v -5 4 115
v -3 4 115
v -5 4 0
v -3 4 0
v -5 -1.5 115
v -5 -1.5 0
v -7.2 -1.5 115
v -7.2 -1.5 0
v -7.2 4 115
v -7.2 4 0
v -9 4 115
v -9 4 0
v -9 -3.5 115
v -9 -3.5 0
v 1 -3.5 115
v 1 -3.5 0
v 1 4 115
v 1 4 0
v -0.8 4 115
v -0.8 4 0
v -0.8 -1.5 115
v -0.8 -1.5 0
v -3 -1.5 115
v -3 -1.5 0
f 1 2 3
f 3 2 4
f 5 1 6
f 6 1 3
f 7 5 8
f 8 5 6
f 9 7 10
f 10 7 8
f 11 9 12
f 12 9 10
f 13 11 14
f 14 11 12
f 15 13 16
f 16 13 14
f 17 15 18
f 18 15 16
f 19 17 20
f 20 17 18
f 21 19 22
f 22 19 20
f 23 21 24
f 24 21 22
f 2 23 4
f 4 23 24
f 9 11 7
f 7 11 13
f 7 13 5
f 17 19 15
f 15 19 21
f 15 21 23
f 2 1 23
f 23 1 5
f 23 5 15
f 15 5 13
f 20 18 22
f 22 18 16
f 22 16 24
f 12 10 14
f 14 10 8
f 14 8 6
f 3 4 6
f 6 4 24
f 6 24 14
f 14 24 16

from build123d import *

# Parameters (mm, degrees)
ESBO_O1_W                = 1.8
ESBO_O1_H                = 5.5
RESSALTO_EXTRUS_O1_DEPTH = 115


with BuildPart() as part:
    # Esboço1 → Ressalto-extrusão1 (new body)
    with BuildSketch(Plane.XY):
        with Locations((-8.1, 1.25)):
            Rectangle(ESBO_O1_W, ESBO_O1_H)
        Polygon((-5, -1.198132677), (-5, -1.5), (-4, -1.5), (-4, 4), (-5, 4), align=None)
        Polygon((-4, 4), (-4, -1.5), (-3, -1.5), (-3, -1.198132677), (-3, 4), align=None)
        Polygon((-4, -1.5), (-5, -1.5), (-5.301867323, -1.5), (-6.898310084, -1.5), (-7.2, -1.5), (-9, -1.5), (-9, -3.5), (1, -3.5), (1, -1.5), (-0.8, -1.5), (-1.101689916, -1.5), (-2.698132677, -1.5), (-3, -1.5), align=None)
        with Locations((0.1, 1.25)):
            Rectangle(ESBO_O1_W, ESBO_O1_H)
    extrude(amount=RESSALTO_EXTRUS_O1_DEPTH)


solid = part.part
